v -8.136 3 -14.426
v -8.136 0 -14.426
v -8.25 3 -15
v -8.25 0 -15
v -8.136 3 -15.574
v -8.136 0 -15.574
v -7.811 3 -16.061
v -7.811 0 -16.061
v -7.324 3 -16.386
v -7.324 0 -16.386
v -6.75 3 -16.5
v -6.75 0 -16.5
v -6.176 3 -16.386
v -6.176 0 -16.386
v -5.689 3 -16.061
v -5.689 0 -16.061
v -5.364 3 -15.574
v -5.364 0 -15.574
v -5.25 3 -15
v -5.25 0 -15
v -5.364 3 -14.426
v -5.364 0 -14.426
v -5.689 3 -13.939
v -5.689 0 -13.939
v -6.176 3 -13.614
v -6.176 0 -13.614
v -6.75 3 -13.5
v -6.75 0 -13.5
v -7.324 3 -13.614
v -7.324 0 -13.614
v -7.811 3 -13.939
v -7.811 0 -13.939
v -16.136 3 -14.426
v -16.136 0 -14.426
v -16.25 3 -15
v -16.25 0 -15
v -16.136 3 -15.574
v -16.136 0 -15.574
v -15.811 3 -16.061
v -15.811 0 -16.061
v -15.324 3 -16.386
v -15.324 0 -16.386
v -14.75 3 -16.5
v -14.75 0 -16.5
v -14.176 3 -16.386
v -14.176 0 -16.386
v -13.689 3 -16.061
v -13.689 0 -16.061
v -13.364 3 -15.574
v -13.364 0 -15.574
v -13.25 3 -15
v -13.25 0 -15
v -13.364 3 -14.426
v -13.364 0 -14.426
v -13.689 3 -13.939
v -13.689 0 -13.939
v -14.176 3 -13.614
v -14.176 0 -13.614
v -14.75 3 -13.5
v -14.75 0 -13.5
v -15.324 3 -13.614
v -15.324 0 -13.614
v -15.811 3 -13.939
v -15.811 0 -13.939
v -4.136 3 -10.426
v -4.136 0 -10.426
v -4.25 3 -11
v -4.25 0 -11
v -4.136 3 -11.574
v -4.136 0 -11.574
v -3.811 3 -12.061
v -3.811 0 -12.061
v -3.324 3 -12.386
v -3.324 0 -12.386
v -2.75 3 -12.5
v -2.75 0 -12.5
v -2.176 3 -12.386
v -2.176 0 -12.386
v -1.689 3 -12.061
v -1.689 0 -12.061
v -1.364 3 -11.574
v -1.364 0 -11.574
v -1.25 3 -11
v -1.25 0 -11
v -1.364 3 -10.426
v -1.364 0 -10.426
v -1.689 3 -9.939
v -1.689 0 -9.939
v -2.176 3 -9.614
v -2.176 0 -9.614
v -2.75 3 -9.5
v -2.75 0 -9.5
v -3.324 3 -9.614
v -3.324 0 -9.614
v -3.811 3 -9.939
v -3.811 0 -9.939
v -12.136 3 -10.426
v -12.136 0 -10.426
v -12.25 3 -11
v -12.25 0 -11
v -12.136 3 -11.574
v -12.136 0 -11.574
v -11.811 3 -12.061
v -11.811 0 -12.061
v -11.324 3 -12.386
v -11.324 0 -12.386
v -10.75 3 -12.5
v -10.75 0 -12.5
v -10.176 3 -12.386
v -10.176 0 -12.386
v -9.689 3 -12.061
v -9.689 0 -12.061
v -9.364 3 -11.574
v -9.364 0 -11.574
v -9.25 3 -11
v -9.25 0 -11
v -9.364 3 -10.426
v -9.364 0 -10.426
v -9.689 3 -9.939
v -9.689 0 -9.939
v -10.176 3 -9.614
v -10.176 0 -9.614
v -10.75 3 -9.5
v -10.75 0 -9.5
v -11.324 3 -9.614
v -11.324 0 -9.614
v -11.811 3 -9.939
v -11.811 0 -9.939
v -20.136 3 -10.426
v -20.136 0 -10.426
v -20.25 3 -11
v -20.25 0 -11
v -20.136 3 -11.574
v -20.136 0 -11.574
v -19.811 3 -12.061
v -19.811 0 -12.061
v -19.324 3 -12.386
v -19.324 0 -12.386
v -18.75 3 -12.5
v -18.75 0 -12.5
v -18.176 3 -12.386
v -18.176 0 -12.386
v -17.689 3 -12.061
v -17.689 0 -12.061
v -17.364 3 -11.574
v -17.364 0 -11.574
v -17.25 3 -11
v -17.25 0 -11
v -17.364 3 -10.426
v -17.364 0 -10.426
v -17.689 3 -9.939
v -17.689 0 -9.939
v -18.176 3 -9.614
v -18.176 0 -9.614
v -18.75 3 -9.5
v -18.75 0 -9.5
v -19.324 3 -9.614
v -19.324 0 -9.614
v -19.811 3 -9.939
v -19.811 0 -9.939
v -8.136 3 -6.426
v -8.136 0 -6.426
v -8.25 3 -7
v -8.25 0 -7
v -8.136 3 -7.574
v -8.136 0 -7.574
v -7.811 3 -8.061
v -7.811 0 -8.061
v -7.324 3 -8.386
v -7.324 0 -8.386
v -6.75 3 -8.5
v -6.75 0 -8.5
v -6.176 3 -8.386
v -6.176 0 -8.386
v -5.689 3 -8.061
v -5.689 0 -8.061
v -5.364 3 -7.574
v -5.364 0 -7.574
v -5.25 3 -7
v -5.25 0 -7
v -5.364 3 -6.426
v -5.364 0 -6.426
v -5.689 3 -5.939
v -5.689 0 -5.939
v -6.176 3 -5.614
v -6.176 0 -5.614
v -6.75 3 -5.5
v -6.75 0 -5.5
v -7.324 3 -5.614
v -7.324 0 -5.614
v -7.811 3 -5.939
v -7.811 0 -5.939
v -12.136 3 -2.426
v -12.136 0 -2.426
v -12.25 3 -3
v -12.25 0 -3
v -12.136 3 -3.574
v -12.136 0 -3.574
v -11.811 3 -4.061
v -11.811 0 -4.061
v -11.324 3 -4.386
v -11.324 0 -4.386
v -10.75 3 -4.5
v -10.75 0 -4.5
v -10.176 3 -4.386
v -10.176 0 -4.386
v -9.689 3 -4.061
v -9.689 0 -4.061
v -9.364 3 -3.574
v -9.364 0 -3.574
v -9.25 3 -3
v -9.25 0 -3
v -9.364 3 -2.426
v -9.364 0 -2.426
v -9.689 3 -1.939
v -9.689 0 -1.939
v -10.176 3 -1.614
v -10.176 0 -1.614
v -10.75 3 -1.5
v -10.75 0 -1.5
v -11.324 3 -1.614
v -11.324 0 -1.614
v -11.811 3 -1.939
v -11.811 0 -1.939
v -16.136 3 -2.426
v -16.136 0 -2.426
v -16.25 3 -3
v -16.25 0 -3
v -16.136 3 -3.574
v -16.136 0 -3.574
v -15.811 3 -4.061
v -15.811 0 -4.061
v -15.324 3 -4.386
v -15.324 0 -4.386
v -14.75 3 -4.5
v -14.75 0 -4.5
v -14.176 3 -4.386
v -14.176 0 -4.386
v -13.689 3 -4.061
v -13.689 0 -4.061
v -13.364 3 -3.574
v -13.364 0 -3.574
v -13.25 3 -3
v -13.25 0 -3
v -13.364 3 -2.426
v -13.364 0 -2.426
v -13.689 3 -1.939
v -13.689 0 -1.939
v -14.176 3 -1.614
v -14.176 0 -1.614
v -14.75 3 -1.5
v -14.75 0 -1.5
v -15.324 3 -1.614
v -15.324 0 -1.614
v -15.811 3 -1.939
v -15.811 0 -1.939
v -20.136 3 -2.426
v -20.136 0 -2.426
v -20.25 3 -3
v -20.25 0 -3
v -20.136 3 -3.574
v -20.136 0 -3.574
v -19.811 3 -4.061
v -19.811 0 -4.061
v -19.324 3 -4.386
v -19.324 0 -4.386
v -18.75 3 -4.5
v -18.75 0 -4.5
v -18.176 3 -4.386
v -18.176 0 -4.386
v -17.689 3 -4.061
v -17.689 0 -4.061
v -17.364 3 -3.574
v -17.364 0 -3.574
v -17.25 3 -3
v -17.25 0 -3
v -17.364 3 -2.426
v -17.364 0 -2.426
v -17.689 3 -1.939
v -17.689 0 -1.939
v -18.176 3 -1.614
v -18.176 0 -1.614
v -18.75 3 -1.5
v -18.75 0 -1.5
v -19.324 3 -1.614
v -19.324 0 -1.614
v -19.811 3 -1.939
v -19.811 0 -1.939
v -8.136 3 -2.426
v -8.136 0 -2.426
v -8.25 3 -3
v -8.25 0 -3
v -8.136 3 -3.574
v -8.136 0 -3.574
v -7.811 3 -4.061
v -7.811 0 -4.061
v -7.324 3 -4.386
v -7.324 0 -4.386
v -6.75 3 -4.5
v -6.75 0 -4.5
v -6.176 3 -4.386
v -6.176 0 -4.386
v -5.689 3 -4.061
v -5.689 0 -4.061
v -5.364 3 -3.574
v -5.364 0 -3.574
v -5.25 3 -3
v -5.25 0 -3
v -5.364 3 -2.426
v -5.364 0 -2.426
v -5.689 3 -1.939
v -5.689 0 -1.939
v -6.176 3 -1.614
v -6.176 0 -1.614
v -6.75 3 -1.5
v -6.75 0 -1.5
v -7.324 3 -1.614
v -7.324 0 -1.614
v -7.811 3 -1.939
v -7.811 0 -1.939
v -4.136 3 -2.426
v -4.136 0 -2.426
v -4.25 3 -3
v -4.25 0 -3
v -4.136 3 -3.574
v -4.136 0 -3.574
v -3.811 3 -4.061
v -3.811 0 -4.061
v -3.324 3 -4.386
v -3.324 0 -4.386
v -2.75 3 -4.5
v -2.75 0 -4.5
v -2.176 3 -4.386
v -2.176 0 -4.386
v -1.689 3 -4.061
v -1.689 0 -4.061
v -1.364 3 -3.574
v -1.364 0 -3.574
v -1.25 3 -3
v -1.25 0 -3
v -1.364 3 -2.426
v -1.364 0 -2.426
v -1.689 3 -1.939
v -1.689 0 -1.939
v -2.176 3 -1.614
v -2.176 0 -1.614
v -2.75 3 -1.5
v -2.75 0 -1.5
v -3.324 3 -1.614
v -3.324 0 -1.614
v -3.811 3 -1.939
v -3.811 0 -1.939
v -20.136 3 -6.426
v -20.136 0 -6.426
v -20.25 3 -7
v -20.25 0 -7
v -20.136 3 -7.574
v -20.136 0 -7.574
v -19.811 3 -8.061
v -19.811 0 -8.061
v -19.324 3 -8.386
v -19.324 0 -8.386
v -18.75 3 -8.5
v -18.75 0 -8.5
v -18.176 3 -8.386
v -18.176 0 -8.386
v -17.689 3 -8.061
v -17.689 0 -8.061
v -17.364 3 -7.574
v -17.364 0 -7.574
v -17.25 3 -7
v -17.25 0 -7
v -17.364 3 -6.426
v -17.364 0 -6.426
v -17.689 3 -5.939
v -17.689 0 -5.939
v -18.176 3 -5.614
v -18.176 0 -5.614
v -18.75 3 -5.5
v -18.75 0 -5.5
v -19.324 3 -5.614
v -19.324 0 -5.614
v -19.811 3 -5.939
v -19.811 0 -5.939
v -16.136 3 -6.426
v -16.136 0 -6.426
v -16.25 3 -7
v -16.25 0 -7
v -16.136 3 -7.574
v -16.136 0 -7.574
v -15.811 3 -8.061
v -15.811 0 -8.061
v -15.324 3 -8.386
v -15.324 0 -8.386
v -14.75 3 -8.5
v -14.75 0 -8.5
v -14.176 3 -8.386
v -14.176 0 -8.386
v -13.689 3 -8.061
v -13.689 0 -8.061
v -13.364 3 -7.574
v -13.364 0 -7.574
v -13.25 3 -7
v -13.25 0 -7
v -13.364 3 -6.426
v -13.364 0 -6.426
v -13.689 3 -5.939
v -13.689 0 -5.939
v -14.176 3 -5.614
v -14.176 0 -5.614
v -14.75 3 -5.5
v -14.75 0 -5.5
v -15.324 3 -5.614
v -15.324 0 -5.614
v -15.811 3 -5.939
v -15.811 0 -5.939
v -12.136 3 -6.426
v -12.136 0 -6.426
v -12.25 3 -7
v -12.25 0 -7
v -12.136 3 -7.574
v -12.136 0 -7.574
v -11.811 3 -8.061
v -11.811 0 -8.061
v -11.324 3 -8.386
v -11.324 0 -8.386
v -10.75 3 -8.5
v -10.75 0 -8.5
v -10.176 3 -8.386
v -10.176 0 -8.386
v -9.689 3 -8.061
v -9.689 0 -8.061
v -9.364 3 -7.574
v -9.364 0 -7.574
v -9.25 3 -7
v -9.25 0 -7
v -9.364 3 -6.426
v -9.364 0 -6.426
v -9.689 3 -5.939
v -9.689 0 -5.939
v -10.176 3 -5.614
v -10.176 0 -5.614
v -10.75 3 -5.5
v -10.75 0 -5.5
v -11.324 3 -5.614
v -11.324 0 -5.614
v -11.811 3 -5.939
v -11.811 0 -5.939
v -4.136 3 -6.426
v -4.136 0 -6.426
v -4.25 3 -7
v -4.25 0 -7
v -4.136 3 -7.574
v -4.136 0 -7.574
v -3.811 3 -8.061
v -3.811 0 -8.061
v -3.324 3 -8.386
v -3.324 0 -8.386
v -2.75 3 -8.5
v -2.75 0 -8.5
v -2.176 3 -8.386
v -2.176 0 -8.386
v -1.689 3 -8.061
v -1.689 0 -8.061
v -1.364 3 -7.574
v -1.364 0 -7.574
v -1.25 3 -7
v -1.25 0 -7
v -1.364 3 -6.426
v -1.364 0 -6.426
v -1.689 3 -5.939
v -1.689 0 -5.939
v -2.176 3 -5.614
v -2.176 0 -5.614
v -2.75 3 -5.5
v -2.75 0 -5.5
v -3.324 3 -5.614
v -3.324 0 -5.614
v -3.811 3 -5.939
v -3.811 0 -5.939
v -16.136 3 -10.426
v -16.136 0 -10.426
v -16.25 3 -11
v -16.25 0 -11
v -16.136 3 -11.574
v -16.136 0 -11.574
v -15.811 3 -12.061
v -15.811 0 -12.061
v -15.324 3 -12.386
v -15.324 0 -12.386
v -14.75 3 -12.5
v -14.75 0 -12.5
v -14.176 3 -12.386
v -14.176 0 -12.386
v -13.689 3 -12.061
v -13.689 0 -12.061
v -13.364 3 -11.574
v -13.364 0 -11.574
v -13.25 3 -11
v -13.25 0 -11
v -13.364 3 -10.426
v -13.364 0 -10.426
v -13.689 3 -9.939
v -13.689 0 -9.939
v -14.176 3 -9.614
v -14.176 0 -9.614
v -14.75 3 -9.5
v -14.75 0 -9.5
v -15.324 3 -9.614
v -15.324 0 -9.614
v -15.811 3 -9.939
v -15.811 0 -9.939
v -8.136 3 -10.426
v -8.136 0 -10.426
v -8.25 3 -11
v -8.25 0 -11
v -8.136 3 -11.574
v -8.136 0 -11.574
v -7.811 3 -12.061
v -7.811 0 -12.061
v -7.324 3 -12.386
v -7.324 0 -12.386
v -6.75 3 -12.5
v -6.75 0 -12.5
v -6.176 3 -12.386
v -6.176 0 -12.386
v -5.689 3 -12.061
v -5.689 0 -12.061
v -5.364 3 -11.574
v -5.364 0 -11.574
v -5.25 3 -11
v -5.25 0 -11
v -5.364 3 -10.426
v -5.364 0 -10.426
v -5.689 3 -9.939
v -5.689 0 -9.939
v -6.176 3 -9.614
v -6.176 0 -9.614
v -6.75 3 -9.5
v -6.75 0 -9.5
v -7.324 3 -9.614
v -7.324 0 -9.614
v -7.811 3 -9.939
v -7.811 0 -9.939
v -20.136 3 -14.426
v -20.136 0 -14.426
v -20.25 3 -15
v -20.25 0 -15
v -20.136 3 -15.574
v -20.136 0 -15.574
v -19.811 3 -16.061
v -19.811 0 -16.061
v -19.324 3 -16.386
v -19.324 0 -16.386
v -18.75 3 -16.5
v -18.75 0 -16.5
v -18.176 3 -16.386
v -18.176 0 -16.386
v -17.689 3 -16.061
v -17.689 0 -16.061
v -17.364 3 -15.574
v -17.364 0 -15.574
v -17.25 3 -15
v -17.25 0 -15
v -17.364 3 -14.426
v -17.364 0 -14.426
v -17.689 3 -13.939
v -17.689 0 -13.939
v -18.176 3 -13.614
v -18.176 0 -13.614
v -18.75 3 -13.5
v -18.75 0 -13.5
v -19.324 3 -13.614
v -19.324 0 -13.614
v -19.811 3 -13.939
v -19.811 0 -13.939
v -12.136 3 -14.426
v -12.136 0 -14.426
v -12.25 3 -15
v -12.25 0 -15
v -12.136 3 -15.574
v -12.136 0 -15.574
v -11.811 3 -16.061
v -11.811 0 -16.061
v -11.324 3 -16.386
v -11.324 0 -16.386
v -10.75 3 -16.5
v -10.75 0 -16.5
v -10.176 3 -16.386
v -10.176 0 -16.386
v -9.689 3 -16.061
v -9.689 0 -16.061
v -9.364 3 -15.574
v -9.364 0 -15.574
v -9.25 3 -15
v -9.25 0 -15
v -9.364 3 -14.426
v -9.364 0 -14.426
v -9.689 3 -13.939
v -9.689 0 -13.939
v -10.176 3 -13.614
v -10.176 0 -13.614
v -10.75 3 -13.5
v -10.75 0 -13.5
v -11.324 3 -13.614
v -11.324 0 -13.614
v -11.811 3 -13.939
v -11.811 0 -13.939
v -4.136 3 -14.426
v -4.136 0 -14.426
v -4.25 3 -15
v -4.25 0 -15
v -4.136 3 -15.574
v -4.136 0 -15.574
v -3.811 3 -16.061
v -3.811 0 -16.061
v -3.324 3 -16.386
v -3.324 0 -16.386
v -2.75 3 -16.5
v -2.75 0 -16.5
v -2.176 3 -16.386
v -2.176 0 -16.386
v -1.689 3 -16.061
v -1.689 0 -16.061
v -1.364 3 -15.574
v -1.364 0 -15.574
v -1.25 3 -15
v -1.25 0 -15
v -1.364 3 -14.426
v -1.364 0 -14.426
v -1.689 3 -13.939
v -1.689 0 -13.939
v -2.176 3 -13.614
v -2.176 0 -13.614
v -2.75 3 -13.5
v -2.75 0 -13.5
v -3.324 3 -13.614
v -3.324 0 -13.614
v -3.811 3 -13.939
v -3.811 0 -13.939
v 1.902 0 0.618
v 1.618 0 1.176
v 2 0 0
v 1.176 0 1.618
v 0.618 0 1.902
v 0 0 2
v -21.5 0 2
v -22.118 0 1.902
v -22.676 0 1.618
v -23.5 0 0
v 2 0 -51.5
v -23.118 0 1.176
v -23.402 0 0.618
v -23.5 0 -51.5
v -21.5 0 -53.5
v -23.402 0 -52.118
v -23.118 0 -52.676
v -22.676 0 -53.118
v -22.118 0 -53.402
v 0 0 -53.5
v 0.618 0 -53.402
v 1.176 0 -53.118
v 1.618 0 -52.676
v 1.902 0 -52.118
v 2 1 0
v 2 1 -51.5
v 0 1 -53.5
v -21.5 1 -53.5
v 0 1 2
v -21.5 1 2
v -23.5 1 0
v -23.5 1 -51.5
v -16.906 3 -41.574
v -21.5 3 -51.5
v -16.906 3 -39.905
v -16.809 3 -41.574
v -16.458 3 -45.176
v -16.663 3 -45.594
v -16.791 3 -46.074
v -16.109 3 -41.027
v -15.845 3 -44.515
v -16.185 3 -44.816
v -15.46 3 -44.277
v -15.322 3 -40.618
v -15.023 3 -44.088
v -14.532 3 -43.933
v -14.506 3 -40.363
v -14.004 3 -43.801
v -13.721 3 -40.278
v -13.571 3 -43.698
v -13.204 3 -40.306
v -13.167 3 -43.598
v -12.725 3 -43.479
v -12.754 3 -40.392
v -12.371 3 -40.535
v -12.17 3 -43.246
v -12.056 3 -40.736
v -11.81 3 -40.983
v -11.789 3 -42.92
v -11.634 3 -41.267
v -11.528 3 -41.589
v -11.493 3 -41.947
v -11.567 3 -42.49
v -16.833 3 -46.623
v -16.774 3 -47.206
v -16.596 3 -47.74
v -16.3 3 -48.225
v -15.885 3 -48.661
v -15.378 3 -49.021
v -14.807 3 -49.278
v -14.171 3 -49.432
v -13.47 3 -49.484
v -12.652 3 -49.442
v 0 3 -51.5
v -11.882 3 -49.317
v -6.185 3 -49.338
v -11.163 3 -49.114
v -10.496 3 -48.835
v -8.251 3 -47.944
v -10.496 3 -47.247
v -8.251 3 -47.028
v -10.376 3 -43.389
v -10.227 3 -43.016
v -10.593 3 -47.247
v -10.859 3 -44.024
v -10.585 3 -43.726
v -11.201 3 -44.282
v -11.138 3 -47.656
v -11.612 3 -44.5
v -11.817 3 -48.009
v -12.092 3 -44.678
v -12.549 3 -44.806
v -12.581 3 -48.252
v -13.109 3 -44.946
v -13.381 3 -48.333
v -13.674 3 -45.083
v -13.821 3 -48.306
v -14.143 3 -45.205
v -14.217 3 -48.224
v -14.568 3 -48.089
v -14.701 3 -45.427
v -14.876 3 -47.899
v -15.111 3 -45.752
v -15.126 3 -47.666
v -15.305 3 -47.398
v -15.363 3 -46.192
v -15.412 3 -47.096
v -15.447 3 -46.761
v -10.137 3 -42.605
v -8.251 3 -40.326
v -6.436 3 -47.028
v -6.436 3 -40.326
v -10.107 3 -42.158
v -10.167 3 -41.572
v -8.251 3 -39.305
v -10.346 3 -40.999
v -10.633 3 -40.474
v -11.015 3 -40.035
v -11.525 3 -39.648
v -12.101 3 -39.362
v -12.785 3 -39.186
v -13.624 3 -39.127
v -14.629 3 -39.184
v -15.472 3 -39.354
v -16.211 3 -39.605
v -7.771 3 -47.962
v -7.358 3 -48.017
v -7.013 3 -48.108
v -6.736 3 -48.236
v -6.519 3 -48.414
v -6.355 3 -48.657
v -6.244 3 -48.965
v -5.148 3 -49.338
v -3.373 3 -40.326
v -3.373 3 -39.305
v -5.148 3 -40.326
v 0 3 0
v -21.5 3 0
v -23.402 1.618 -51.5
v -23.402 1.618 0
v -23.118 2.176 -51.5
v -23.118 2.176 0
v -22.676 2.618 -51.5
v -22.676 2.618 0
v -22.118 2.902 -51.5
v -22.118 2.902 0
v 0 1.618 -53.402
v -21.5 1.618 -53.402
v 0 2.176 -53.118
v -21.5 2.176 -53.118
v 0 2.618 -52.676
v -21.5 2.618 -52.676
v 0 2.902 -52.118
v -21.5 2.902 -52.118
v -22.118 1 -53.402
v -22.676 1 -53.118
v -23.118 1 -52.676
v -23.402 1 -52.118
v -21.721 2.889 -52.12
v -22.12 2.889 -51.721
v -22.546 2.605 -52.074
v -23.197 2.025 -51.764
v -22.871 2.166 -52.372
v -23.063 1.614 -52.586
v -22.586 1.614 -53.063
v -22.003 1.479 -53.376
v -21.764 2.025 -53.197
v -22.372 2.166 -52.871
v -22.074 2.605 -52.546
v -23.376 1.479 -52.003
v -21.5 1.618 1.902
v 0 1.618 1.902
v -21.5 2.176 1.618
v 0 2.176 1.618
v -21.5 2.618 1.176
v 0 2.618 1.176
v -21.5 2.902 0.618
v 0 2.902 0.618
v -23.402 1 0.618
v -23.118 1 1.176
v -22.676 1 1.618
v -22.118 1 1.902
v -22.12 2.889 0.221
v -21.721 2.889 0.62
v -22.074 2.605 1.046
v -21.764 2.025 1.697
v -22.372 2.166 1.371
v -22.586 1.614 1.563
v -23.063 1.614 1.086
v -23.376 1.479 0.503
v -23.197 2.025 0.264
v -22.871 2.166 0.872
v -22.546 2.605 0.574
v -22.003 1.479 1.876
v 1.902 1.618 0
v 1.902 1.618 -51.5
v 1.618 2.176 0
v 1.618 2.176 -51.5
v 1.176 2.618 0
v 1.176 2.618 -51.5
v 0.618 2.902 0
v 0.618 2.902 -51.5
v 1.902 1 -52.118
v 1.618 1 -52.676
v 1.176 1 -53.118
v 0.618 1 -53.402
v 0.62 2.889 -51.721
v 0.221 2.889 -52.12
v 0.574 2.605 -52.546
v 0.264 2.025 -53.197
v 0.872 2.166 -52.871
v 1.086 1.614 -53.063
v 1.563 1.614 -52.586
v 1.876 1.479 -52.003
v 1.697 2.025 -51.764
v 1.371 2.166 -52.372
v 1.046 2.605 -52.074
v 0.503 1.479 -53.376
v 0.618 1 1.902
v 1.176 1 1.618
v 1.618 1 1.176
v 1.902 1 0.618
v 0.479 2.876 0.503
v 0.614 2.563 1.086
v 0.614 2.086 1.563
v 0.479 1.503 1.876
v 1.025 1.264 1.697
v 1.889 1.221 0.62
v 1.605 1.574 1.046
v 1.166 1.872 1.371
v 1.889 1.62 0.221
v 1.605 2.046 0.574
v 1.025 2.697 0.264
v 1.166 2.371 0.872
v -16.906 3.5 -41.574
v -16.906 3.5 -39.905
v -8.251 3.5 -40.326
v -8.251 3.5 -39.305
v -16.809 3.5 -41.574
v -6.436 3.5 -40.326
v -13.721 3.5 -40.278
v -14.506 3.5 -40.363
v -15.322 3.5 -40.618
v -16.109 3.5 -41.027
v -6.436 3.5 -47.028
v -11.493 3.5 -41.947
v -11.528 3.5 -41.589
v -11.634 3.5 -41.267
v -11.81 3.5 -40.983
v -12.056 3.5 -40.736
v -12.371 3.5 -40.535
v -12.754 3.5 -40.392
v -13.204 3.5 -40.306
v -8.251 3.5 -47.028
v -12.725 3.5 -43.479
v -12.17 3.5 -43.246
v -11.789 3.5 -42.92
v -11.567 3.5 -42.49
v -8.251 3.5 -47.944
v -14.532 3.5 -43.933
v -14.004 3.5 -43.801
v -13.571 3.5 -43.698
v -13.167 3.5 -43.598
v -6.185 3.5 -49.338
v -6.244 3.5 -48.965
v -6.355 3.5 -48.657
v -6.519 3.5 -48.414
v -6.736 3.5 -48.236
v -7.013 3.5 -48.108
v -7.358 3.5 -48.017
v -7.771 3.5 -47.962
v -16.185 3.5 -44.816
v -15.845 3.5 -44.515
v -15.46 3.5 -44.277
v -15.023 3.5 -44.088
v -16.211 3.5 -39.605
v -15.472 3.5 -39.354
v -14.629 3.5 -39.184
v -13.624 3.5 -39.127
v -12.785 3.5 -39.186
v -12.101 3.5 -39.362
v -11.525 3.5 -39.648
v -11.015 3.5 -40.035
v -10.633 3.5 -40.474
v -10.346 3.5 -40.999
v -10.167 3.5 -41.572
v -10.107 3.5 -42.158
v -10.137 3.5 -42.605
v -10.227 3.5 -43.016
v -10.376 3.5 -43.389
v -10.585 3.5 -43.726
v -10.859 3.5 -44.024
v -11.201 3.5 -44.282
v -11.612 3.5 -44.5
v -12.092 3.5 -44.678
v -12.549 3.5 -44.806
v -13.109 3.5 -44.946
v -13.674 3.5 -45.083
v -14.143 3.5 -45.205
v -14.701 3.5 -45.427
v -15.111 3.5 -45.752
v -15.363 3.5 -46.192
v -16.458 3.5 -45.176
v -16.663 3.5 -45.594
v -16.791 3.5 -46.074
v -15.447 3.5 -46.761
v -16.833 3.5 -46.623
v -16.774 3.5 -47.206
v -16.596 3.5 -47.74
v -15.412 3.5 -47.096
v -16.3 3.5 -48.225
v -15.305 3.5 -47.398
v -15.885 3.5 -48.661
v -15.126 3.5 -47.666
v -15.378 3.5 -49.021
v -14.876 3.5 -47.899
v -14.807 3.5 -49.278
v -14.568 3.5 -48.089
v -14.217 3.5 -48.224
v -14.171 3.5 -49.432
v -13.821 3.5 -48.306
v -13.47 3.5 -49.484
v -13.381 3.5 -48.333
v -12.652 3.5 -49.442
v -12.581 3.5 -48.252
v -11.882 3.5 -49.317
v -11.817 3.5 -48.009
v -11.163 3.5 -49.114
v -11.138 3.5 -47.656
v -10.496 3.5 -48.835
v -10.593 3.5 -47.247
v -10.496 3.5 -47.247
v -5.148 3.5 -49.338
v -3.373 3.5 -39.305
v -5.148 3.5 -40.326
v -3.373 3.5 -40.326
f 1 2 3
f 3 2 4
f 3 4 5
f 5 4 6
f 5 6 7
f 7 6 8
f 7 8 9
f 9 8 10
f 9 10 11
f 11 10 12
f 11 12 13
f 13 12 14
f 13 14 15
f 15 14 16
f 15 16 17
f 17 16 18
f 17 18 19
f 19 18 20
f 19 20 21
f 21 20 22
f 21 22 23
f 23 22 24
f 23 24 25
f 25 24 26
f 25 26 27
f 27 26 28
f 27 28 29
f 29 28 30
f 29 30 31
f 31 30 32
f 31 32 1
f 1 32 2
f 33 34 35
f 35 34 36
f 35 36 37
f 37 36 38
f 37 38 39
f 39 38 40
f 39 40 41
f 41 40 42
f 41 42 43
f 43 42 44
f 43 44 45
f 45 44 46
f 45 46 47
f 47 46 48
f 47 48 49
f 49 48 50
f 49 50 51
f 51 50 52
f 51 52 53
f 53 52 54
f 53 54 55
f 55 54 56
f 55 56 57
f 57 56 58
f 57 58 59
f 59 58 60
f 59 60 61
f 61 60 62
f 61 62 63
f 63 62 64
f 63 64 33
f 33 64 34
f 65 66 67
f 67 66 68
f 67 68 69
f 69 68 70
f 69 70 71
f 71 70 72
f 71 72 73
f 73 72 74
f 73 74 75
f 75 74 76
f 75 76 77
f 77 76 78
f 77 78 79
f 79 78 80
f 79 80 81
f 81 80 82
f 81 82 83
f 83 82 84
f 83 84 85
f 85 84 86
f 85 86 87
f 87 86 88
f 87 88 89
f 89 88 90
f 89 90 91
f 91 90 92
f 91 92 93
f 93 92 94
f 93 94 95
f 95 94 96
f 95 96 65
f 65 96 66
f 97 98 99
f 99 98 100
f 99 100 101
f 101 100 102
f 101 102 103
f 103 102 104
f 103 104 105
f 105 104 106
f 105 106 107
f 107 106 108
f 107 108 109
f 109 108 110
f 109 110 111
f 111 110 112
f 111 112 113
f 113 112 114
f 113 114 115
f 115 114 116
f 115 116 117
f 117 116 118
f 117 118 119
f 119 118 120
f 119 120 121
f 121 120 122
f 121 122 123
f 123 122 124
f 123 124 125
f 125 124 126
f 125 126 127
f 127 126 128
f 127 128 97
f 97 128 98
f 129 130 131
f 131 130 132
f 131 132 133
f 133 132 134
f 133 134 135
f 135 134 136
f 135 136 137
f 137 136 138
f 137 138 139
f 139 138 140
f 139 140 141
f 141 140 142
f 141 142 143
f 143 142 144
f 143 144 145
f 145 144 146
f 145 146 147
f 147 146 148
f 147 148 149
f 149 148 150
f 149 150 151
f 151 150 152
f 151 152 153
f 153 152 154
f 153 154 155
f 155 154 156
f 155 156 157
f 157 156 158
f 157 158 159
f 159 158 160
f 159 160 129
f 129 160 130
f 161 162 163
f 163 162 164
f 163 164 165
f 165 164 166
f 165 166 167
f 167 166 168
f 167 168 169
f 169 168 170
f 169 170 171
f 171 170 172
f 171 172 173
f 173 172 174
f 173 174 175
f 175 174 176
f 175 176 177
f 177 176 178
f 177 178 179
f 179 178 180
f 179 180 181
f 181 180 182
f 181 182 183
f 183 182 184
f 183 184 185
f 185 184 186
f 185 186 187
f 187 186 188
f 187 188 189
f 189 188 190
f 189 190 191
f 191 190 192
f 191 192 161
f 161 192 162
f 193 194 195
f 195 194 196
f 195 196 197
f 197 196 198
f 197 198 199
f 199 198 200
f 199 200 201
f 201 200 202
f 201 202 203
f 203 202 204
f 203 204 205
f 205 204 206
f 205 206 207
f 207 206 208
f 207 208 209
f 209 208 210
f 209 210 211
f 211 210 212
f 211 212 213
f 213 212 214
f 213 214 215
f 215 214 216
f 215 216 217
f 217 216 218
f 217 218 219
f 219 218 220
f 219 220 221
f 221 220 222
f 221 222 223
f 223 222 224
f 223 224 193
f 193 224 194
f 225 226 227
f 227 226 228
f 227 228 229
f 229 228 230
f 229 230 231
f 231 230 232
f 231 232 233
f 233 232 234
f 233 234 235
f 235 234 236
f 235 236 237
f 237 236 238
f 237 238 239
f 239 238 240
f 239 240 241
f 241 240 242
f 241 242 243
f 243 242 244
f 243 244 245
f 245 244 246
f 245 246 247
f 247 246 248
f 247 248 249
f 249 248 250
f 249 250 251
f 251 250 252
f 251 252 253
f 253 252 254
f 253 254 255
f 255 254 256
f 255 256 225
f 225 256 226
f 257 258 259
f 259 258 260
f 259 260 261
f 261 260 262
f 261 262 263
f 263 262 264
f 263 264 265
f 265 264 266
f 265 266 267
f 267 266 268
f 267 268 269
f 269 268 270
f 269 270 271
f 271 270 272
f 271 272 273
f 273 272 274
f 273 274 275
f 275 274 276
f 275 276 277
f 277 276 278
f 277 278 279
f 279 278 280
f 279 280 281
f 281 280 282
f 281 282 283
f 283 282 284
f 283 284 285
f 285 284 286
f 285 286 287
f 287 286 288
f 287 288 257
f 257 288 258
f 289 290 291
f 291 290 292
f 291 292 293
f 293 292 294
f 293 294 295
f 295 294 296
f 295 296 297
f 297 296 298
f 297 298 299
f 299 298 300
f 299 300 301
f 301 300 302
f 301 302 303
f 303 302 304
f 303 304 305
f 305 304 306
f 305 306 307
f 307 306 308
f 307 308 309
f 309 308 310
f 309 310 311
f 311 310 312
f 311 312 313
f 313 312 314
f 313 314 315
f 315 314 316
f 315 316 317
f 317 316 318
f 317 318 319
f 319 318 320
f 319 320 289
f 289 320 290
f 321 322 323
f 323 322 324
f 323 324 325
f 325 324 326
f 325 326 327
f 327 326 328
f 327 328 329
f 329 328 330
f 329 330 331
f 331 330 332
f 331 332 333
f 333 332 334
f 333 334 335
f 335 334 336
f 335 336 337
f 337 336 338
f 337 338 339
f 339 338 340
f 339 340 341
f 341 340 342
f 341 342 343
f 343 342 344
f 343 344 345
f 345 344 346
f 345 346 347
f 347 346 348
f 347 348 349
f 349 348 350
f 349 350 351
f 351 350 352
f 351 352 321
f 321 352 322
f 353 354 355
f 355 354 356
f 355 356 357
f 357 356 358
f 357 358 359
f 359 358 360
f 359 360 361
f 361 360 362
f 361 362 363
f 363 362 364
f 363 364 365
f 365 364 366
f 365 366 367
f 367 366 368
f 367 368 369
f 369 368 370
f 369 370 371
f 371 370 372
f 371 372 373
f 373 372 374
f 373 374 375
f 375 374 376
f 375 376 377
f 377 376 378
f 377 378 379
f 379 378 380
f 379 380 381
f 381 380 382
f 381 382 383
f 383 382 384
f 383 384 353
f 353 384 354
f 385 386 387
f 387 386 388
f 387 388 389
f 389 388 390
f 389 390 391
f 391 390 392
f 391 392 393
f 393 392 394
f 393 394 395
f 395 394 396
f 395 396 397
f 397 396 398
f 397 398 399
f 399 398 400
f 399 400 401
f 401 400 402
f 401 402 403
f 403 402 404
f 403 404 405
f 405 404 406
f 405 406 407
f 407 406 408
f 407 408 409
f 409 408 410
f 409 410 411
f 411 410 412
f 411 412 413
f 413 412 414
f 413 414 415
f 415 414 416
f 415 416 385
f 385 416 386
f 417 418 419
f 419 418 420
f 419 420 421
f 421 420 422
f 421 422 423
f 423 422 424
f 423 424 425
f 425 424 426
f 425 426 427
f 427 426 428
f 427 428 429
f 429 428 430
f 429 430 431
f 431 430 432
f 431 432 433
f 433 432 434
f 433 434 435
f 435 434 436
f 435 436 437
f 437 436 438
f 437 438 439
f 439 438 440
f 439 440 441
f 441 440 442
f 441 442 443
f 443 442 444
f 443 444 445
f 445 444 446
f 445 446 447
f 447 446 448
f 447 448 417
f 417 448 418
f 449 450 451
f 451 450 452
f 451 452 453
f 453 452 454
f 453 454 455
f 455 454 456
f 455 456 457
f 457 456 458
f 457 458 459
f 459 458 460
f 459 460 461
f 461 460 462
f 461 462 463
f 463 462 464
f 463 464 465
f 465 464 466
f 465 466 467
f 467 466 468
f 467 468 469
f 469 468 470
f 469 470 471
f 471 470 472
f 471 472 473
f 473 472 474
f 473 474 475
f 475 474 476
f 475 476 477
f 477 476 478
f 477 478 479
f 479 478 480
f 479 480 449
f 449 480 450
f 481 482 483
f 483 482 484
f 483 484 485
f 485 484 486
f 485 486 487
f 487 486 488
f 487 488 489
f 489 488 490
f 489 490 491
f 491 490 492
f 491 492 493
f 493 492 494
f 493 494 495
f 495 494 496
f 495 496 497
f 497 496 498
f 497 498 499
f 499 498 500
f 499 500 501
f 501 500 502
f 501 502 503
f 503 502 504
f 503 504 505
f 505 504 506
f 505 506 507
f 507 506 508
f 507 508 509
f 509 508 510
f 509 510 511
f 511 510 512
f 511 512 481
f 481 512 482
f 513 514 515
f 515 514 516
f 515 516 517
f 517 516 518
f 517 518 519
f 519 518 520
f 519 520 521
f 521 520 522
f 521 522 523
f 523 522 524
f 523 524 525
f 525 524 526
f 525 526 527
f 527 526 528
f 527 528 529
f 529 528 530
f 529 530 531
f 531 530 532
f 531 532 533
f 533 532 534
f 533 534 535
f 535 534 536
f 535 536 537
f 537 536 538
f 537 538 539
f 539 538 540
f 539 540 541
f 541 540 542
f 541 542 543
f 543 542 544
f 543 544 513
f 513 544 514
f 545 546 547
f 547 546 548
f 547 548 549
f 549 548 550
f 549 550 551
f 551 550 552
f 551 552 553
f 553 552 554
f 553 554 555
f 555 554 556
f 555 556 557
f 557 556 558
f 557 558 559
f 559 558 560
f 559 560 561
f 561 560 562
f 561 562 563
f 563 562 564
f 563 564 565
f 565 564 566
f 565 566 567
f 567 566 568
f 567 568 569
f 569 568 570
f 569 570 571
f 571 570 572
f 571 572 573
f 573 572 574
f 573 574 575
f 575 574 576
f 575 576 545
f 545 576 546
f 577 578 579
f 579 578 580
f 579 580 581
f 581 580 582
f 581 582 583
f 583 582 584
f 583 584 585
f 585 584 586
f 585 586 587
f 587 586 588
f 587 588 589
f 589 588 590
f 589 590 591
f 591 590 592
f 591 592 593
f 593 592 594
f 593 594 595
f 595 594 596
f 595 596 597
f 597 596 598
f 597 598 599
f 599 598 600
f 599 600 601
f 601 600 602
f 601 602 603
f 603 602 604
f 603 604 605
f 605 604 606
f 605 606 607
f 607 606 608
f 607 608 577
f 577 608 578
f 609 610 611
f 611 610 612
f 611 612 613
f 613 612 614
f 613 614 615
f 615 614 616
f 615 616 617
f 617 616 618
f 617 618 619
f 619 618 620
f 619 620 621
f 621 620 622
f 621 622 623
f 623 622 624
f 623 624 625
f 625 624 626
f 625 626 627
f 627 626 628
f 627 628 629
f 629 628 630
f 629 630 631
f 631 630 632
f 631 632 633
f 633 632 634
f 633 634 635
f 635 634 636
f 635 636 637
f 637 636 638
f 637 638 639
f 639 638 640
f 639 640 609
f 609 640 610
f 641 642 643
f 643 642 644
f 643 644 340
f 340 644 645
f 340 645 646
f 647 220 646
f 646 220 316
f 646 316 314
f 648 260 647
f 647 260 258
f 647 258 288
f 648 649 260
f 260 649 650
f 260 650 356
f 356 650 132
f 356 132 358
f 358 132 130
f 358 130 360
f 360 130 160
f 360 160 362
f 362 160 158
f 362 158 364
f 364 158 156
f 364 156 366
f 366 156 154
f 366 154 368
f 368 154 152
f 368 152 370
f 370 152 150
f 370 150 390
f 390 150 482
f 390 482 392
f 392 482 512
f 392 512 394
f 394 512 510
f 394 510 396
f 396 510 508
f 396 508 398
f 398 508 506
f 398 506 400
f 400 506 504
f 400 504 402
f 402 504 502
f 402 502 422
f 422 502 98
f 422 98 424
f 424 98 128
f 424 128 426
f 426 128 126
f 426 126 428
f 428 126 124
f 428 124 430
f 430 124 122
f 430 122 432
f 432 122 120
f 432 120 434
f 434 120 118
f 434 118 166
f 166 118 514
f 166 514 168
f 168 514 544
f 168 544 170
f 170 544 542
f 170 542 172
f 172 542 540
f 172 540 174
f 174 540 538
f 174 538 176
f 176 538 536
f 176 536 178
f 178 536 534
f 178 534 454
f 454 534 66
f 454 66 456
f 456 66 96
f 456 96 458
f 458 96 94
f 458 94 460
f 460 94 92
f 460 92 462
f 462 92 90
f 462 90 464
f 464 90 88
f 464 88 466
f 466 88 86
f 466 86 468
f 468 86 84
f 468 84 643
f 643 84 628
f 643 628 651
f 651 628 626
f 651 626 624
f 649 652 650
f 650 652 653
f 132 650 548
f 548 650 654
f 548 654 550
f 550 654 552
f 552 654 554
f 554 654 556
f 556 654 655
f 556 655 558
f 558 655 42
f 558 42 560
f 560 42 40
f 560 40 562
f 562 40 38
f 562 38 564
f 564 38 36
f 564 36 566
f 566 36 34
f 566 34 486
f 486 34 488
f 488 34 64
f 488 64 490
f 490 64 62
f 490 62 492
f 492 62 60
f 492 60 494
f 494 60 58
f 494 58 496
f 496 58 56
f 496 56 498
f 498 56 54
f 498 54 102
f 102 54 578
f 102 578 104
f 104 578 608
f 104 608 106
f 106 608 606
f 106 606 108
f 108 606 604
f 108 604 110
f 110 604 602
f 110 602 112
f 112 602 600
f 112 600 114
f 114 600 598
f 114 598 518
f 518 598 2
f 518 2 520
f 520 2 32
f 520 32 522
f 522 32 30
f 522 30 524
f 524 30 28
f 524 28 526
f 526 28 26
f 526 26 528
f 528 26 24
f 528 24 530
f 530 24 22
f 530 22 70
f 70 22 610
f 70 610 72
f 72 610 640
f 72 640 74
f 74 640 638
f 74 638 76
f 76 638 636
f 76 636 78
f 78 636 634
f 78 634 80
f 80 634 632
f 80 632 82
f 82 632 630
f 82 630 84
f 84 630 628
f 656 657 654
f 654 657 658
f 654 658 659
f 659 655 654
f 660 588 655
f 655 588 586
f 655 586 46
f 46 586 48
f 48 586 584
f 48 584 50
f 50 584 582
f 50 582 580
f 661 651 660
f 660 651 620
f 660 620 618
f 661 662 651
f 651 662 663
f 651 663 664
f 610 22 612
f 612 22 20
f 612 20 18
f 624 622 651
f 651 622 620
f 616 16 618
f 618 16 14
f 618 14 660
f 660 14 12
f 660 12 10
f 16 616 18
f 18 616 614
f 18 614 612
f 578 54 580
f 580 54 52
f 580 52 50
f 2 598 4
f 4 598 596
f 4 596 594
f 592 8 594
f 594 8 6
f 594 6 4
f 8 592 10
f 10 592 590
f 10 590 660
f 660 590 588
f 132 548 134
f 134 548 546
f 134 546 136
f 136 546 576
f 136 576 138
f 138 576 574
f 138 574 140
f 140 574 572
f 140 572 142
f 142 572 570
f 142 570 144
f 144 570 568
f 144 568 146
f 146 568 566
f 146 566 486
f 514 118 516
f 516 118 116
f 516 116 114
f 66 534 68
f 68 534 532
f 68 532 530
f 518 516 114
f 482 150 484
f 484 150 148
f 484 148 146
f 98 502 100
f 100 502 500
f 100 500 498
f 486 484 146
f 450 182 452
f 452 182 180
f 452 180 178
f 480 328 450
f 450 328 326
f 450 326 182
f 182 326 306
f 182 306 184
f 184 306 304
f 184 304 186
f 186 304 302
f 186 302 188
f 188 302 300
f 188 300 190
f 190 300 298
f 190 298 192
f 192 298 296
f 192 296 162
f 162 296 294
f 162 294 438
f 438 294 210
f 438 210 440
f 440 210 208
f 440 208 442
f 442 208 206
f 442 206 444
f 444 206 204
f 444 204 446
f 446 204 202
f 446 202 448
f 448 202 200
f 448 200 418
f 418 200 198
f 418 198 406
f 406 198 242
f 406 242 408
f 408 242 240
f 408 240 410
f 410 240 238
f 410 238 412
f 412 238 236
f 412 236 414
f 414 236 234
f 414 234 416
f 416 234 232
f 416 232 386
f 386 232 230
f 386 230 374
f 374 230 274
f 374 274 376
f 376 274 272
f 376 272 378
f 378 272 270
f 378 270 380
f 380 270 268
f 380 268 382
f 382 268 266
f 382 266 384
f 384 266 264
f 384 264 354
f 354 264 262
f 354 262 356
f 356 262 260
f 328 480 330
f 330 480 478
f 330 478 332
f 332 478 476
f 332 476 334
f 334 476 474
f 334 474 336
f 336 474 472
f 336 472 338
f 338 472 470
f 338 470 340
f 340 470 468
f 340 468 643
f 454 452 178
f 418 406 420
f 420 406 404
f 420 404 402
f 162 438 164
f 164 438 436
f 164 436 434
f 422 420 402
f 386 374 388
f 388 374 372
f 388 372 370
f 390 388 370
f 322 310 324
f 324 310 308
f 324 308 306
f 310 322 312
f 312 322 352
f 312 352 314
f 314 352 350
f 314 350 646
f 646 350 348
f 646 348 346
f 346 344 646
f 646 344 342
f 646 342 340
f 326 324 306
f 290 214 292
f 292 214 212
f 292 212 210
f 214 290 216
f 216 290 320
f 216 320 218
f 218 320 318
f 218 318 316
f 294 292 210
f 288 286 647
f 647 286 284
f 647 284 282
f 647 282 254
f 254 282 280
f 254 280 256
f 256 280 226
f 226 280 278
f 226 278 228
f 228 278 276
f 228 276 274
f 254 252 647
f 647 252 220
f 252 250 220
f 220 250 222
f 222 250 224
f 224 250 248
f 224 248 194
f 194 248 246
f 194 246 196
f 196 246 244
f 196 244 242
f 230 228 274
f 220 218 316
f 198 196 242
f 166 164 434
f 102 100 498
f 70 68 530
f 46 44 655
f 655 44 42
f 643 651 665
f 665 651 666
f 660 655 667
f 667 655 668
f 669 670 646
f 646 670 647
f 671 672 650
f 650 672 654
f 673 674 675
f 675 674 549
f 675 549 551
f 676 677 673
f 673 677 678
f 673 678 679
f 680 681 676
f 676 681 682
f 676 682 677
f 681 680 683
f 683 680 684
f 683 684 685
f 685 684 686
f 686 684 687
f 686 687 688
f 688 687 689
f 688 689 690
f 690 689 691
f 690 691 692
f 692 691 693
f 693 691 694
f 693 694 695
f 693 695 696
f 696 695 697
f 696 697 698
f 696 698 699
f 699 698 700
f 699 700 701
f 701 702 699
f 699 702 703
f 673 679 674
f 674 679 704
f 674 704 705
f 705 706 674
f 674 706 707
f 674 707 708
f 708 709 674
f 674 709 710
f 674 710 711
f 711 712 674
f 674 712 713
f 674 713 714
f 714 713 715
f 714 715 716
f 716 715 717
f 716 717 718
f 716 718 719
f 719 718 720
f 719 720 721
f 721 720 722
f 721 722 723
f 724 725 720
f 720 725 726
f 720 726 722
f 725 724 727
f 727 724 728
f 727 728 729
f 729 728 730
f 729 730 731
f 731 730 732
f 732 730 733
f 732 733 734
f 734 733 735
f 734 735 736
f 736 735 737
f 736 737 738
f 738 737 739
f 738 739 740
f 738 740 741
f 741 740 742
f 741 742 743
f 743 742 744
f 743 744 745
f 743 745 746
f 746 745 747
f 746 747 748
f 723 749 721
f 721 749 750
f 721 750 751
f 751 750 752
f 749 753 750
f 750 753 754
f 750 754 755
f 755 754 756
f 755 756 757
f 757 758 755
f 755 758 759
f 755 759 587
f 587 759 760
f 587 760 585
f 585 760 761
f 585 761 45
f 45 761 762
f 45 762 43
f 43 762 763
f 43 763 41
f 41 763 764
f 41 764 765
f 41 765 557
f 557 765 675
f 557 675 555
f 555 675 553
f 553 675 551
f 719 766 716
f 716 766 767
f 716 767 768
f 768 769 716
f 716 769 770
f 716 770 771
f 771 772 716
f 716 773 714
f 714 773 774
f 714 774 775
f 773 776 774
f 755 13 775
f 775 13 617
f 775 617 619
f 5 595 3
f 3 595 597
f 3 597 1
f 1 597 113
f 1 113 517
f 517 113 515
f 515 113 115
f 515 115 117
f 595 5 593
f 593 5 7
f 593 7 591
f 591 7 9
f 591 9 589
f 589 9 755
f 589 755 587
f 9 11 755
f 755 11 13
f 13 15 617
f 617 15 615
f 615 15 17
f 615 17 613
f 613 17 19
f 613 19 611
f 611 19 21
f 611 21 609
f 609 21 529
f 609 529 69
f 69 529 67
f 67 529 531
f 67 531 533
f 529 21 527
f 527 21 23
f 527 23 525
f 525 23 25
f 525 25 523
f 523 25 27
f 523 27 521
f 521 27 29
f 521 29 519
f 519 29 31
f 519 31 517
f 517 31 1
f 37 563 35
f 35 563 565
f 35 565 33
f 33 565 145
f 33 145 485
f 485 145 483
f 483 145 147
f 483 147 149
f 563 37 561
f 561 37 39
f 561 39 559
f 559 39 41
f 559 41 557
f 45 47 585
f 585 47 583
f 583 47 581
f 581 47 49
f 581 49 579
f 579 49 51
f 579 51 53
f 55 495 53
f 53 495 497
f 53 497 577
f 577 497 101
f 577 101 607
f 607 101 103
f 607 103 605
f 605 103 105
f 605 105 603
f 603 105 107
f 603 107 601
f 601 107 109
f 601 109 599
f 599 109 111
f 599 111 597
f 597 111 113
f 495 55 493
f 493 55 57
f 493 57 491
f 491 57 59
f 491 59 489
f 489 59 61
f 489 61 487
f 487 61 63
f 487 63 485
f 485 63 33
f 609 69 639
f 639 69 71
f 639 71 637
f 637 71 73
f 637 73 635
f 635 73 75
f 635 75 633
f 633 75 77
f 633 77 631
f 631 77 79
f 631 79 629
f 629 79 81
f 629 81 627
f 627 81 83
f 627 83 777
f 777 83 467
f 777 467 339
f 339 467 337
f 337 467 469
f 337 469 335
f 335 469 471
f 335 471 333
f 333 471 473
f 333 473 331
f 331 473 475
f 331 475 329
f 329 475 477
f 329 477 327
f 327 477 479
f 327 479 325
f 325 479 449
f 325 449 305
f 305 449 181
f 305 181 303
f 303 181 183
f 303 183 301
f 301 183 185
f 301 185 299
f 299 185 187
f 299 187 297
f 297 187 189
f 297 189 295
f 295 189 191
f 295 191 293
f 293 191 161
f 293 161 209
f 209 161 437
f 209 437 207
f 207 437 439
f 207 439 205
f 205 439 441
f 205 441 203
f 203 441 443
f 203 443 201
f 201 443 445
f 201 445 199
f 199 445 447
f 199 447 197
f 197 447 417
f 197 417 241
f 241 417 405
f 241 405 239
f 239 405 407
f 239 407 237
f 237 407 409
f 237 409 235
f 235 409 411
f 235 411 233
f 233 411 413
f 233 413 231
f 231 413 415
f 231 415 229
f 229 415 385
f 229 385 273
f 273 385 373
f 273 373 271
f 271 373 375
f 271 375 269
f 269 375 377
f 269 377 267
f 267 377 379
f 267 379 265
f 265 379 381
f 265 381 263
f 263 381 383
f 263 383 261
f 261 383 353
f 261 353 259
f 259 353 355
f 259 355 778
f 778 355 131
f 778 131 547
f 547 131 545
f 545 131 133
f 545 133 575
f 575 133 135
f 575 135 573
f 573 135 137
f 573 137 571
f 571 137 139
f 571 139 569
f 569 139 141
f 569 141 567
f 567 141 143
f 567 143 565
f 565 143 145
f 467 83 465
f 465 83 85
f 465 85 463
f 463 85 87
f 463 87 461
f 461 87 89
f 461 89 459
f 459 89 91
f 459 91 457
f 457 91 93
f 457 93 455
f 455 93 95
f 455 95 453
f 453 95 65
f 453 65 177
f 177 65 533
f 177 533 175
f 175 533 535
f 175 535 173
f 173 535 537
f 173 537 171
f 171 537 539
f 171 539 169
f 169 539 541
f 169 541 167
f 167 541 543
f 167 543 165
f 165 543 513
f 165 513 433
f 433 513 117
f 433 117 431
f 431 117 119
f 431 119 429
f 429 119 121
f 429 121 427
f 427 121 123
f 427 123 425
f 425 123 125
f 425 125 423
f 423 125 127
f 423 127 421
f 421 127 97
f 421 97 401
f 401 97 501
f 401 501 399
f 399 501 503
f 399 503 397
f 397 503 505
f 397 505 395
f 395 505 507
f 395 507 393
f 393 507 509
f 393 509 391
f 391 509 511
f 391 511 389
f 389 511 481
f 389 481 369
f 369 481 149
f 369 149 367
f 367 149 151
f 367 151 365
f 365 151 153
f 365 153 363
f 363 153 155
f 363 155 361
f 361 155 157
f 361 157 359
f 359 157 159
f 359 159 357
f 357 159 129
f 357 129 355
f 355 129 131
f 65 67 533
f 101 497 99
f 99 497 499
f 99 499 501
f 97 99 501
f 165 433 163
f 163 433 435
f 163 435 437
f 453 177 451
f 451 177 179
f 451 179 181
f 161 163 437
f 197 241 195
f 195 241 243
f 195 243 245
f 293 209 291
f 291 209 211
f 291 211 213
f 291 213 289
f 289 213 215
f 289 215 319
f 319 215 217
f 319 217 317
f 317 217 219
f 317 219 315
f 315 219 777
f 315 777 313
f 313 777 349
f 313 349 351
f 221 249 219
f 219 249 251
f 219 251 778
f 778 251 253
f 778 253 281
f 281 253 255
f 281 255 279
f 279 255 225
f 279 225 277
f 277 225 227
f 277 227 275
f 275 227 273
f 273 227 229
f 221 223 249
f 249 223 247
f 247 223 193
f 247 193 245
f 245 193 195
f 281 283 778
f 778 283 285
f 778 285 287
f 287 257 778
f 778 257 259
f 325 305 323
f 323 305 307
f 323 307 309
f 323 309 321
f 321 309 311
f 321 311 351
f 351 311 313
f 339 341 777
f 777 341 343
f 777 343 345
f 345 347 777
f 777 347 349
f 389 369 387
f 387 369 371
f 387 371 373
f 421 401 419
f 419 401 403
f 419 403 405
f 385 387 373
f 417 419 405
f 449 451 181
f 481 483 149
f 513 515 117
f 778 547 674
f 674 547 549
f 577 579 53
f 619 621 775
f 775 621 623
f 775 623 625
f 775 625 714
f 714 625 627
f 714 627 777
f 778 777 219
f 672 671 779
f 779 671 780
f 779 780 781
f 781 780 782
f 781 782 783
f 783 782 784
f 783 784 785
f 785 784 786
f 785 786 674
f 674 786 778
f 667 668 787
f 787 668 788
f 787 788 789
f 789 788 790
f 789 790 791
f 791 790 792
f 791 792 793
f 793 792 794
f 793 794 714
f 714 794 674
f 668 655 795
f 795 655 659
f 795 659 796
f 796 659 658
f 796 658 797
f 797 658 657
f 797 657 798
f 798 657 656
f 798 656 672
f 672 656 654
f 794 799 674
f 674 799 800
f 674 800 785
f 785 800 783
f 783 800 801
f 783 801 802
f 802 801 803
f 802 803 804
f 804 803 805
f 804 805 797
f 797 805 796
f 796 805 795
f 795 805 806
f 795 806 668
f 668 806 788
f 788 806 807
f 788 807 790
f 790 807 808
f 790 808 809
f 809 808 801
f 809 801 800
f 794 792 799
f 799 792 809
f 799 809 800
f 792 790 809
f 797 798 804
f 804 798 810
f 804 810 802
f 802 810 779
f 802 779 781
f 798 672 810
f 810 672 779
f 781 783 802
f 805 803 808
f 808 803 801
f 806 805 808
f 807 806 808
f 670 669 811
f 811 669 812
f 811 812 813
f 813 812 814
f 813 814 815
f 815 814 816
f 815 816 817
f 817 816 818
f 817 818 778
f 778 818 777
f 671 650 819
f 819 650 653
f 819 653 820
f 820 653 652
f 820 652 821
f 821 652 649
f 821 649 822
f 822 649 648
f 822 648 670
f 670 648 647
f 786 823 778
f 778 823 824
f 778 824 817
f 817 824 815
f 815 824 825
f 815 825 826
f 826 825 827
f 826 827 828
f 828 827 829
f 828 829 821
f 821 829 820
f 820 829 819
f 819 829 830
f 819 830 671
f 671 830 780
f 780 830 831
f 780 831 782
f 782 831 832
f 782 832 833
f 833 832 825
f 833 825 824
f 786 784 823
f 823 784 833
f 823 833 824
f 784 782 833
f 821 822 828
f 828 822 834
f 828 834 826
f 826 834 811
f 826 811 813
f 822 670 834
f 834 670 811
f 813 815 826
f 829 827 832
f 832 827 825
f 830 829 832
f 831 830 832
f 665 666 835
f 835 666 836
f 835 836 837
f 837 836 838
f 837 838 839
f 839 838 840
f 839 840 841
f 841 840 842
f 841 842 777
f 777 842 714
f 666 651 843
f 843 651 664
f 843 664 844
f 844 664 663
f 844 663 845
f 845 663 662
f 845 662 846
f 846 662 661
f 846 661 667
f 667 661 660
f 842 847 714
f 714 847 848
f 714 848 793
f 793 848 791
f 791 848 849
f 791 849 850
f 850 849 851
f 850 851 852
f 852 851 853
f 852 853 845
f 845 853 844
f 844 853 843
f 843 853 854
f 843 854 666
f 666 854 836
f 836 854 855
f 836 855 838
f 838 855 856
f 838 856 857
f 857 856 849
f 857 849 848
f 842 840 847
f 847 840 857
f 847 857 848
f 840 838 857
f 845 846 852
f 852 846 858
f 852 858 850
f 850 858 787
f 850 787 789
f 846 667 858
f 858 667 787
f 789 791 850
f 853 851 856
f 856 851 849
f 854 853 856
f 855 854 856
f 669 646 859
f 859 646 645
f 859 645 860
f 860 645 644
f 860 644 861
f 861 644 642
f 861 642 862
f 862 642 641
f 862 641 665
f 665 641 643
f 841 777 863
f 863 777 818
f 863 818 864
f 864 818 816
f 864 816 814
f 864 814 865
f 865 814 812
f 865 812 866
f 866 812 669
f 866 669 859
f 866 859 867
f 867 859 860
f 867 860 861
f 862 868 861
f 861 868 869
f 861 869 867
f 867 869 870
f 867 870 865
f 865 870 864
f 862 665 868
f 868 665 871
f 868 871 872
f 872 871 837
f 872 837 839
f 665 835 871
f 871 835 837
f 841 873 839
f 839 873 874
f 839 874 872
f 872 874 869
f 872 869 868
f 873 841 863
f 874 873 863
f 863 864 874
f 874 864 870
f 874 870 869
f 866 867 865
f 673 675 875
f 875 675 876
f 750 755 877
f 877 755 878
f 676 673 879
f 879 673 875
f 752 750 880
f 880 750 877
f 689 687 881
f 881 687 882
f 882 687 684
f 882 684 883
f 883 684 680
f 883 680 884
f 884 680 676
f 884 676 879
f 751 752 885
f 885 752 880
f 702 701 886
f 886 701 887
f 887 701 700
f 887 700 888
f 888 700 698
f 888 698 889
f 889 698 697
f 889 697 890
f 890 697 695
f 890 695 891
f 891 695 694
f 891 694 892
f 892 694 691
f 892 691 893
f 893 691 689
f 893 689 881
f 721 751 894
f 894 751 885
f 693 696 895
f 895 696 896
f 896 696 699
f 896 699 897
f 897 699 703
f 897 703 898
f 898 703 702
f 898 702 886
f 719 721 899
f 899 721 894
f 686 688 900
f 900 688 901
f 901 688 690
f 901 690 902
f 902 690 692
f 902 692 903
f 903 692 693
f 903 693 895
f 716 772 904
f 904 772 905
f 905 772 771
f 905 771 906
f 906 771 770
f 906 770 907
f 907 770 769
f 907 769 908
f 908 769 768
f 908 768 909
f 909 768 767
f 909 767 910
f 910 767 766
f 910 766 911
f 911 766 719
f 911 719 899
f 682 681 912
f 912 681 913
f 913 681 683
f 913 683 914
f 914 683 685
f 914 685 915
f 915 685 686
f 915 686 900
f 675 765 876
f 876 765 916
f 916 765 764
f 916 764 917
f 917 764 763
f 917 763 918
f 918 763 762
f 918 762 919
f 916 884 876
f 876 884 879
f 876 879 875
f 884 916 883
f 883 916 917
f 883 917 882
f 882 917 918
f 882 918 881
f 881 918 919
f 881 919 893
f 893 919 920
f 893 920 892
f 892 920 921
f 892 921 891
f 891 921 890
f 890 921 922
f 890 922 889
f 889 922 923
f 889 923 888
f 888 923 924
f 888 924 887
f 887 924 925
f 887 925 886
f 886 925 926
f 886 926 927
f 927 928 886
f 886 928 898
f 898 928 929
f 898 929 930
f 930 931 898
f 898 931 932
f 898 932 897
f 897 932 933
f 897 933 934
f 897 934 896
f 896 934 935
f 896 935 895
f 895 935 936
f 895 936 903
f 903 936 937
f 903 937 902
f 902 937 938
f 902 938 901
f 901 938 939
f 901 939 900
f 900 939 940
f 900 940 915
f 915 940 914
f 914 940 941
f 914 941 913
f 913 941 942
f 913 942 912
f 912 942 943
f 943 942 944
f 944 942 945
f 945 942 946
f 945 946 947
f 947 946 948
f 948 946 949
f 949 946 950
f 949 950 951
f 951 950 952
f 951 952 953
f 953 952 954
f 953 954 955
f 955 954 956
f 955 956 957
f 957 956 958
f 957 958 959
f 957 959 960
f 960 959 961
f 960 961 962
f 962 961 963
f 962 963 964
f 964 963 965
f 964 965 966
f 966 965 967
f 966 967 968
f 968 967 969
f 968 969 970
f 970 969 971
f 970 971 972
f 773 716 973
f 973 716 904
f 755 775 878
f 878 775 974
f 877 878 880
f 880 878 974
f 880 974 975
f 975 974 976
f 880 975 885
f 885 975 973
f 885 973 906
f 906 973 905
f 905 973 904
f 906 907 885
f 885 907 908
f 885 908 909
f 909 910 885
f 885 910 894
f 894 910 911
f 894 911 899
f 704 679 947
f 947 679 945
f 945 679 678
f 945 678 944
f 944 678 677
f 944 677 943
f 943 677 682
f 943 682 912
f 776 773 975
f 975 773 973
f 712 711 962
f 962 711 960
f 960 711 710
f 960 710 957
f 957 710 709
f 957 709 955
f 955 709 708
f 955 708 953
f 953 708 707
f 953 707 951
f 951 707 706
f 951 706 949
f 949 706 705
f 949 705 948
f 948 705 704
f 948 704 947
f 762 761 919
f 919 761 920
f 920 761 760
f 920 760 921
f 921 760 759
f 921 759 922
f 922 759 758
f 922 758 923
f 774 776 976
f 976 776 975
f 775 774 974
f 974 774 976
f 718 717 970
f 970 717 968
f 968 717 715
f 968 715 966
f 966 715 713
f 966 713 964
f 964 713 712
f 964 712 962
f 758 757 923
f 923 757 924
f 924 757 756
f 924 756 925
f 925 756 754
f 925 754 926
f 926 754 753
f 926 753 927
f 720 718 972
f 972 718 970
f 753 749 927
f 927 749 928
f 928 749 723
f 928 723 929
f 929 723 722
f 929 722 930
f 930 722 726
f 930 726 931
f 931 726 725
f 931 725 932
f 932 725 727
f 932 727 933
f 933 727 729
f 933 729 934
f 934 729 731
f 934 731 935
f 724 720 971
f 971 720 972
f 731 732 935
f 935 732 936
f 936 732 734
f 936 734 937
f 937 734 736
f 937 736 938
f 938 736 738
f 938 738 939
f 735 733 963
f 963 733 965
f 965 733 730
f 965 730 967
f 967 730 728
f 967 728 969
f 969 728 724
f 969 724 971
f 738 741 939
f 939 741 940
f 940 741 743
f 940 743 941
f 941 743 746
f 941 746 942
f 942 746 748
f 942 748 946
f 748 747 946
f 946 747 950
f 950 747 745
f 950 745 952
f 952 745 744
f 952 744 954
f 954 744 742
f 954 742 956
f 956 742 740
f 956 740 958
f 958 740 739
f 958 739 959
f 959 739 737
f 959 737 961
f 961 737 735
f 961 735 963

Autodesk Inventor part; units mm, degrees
ref_plane "YZ Plane" through (0, 0, 0) normal (1, 0, 0) x (0, 1, 0)
ref_plane "XZ Plane" through (0, 0, 0) normal (0, 1, 0) x (-1, 0, 0)
ref_plane "XY Plane" through (0, 0, 0) normal (0, 0, 1) x (1, 0, 0)
sketch "Sketch1" plane through (0, 0, 0) normal (0, 1, 0) x (-1, 0, 0)
  line L0 (0, 0) -> (21.5, 0)
  line L1 (21.5, 0) -> (21.5, -51.5)
  line L2 (21.5, -51.5) -> (0, -51.5)
  line L3 (0, -51.5) -> (0, 0)
  line L4 (23.5, 2) -> (-2, 2)
  line L5 (-2, 2) -> (-2, -53.5)
  line L6 (-2, -53.5) -> (23.5, -53.5)
  line L7 (23.5, -53.5) -> (23.5, 2)
  line L8 (10.75, 0) -> (10.75, -51.5) construction
  circle A0 centre (10.75, -3) radius 1.5
  line L9 (0, -3) -> (21.5, -3) construction
  circle A1 centre (14.75, -3) radius 1.5
  circle A2 centre (18.75, -3) radius 1.5
  circle A3 centre (6.75, -3) radius 1.5
  circle A4 centre (2.75, -3) radius 1.5
  circle A5 centre (18.75, -7) radius 1.5
  circle A6 centre (14.75, -7) radius 1.5
  circle A7 centre (10.75, -7) radius 1.5
  circle A8 centre (6.75, -7) radius 1.5
  circle A9 centre (2.75, -7) radius 1.5
  circle A10 centre (18.75, -11) radius 1.5
  circle A11 centre (14.75, -11) radius 1.5
  circle A12 centre (10.75, -11) radius 1.5
  circle A13 centre (6.75, -11) radius 1.5
  circle A14 centre (2.75, -11) radius 1.5
  circle A15 centre (18.75, -15) radius 1.5
  circle A16 centre (14.75, -15) radius 1.5
  circle A17 centre (10.75, -15) radius 1.5
  circle A18 centre (6.75, -15) radius 1.5
  circle A19 centre (2.75, -15) radius 1.5
  point P0 (10.75, -3)
  point P1 (10.75, -7)
  point P2 (10.75, -11)
  point P3 (10.75, -15)
  dimension "d0" = 21.5
  dimension "d1" = 51.5
  dimension "d2" = 2
  dimension "d3" = 2
  dimension "d4" = 2
  dimension "d5" = 2
  dimension "d6" = 3
  dimension "d8" = 3
  dimension "d9" = 3
  dimension "d10" = 3
  dimension "d11" = 3
  dimension "d12" = 3
  dimension "d13" = 4
  dimension "d14" = 4
  dimension "d15" = 4
  dimension "d16" = 4
  dimension "d19" = 4
extrude "Extrusion1" add sketch "Sketch1" along normal blind 3 contours L0 L1 L2 L3 | L7 L6 L5 L4
fillet "Fillet1" radius 2 8 edges at (-23.5, 3, -25.75) (-10.75, 3, 2) (-23.5, 1.5, 2) (2, 1.5, 2) (2, 3, -25.75) (-10.75, 3, -53.5) (-23.5, 1.5, -53.5) (2, 1.5, -53.5)
sketch "Sketch2" plane through (0, 3, 0) normal (0, 1, 0) x (1, 0, 0)
  line L0 (-17.4247, 49.4836) -> (-8.1758, 49.4836) construction
  line L1 (-8.1758, 49.4836) -> (-8.1758, 43.1661) construction
  line L2 (-8.1758, 43.1661) -> (-17.4247, 43.1661) construction
  line L3 (-17.4247, 43.1661) -> (-17.4247, 49.4836) construction
  spline S0 degree 2 poles (-13.624, 39.127) (-14.7099, 39.127) (-16.2334, 39.5808) (-16.906, 39.905) knots 0 0 0 1 2 2 2
  line L4 (-16.906, 39.905) -> (-16.906, 41.5744)
  line L5 (-16.906, 41.5744) -> (-16.8088, 41.5744)
  spline S1 degree 2 poles (-16.8088, 41.5744) (-16.1524, 40.9585) (-14.4911, 40.2778) (-13.7213, 40.2778) knots 0 0 0 1 2 2 2
  spline S2 degree 2 poles (-13.7213, 40.2778) (-12.6192, 40.2778) (-11.4928, 41.1935) (-11.4928, 41.9471) knots 0 0 0 1 2 2 2
  spline S3 degree 2 poles (-11.4928, 41.9471) (-11.4928, 42.5468) (-12.0843, 43.2923) (-12.7245, 43.4787) knots 0 0 0 1 2 2 2
  spline S4 degree 2 poles (-12.7245, 43.4787) (-13.1864, 43.6084) (-13.9563, 43.7867) (-14.5317, 43.9325) knots 0 0 0 1 2 2 2
  spline S5 degree 2 poles (-14.5317, 43.9325) (-15.0503, 44.0703) (-15.8688, 44.4836) (-16.1848, 44.8158) knots 0 0 0 1 2 2 2
  spline S6 degree 2 poles (-16.1848, 44.8158) (-16.4928, 45.1481) (-16.8331, 46.0395) (-16.8331, 46.623) knots 0 0 0 1 2 2 2
  spline S7 degree 2 poles (-16.8331, 46.623) (-16.8331, 47.8385) (-14.9368, 49.4836) (-13.4701, 49.4836) knots 0 0 0 1 2 2 2
  spline S8 degree 2 poles (-13.4701, 49.4836) (-12.6273, 49.4836) (-11.1362, 49.1513) (-10.496, 48.8353) knots 0 0 0 1 2 2 2
  line L6 (-10.496, 48.8353) -> (-10.496, 47.247)
  line L7 (-10.496, 47.247) -> (-10.5932, 47.247)
  spline S9 degree 2 poles (-10.5932, 47.247) (-11.0714, 47.6846) (-12.5624, 48.3329) (-13.3809, 48.3329) knots 0 0 0 1 2 2 2
  spline S10 degree 2 poles (-13.3809, 48.3329) (-14.3047, 48.3329) (-15.4474, 47.4658) (-15.4474, 46.7607) knots 0 0 0 1 2 2 2
  spline S11 degree 2 poles (-15.4474, 46.7607) (-15.4474, 46.1287) (-14.7748, 45.375) (-14.1427, 45.2048) knots 0 0 0 1 2 2 2
  spline S12 degree 2 poles (-14.1427, 45.2048) (-13.7213, 45.0914) (-12.4976, 44.7996) (-12.0924, 44.6781) knots 0 0 0 1 2 2 2
  spline S13 degree 2 poles (-12.0924, 44.6781) (-11.0633, 44.362) (-10.107, 43.0898) (-10.107, 42.1578) knots 0 0 0 1 2 2 2
  spline S14 degree 2 poles (-10.107, 42.1578) (-10.107, 41.5663) (-10.5851, 40.4317) (-11.0146, 40.0346) knots 0 0 0 1 2 2 2
  spline S15 degree 2 poles (-11.0146, 40.0346) (-11.4928, 39.597) (-12.7083, 39.127) (-13.624, 39.127) knots 0 0 0 1 2 2 2
  line L8 (-3.3728, 39.3053) -> (-8.2513, 39.3053)
  line L9 (-8.2513, 39.3053) -> (-8.2513, 40.3264)
  line L10 (-8.2513, 40.3264) -> (-6.436, 40.3264)
  line L11 (-6.436, 40.3264) -> (-6.436, 47.0282)
  line L12 (-6.436, 47.0282) -> (-8.2513, 47.0282)
  line L13 (-8.2513, 47.0282) -> (-8.2513, 47.9439)
  spline S16 degree 2 poles (-8.2513, 47.9439) (-7.2221, 47.9439) (-6.2496, 48.5274) (-6.1848, 49.3377) knots 0 0 0 1 2 2 2
  line L14 (-6.1848, 49.3377) -> (-5.1475, 49.3377)
  line L15 (-5.1475, 49.3377) -> (-5.1475, 40.3264)
  line L16 (-5.1475, 40.3264) -> (-3.3728, 40.3264)
  line L17 (-3.3728, 40.3264) -> (-3.3728, 39.3053)
  point P0 (0, 0)
extrude "Extrusion2" add sketch "Sketch2" along normal blind 0.5
equation "\"d8\" = d6"
equation "\"d9\" = d11"
equation "\"d10\" = d11"
equation "\"d11\" = d6"
equation "\"d12\" = d11"
equation "\"d14\" = d13"
equation "\"d15\" = d13"
equation "\"d16\" = d15"
properties part number "sensor1"
